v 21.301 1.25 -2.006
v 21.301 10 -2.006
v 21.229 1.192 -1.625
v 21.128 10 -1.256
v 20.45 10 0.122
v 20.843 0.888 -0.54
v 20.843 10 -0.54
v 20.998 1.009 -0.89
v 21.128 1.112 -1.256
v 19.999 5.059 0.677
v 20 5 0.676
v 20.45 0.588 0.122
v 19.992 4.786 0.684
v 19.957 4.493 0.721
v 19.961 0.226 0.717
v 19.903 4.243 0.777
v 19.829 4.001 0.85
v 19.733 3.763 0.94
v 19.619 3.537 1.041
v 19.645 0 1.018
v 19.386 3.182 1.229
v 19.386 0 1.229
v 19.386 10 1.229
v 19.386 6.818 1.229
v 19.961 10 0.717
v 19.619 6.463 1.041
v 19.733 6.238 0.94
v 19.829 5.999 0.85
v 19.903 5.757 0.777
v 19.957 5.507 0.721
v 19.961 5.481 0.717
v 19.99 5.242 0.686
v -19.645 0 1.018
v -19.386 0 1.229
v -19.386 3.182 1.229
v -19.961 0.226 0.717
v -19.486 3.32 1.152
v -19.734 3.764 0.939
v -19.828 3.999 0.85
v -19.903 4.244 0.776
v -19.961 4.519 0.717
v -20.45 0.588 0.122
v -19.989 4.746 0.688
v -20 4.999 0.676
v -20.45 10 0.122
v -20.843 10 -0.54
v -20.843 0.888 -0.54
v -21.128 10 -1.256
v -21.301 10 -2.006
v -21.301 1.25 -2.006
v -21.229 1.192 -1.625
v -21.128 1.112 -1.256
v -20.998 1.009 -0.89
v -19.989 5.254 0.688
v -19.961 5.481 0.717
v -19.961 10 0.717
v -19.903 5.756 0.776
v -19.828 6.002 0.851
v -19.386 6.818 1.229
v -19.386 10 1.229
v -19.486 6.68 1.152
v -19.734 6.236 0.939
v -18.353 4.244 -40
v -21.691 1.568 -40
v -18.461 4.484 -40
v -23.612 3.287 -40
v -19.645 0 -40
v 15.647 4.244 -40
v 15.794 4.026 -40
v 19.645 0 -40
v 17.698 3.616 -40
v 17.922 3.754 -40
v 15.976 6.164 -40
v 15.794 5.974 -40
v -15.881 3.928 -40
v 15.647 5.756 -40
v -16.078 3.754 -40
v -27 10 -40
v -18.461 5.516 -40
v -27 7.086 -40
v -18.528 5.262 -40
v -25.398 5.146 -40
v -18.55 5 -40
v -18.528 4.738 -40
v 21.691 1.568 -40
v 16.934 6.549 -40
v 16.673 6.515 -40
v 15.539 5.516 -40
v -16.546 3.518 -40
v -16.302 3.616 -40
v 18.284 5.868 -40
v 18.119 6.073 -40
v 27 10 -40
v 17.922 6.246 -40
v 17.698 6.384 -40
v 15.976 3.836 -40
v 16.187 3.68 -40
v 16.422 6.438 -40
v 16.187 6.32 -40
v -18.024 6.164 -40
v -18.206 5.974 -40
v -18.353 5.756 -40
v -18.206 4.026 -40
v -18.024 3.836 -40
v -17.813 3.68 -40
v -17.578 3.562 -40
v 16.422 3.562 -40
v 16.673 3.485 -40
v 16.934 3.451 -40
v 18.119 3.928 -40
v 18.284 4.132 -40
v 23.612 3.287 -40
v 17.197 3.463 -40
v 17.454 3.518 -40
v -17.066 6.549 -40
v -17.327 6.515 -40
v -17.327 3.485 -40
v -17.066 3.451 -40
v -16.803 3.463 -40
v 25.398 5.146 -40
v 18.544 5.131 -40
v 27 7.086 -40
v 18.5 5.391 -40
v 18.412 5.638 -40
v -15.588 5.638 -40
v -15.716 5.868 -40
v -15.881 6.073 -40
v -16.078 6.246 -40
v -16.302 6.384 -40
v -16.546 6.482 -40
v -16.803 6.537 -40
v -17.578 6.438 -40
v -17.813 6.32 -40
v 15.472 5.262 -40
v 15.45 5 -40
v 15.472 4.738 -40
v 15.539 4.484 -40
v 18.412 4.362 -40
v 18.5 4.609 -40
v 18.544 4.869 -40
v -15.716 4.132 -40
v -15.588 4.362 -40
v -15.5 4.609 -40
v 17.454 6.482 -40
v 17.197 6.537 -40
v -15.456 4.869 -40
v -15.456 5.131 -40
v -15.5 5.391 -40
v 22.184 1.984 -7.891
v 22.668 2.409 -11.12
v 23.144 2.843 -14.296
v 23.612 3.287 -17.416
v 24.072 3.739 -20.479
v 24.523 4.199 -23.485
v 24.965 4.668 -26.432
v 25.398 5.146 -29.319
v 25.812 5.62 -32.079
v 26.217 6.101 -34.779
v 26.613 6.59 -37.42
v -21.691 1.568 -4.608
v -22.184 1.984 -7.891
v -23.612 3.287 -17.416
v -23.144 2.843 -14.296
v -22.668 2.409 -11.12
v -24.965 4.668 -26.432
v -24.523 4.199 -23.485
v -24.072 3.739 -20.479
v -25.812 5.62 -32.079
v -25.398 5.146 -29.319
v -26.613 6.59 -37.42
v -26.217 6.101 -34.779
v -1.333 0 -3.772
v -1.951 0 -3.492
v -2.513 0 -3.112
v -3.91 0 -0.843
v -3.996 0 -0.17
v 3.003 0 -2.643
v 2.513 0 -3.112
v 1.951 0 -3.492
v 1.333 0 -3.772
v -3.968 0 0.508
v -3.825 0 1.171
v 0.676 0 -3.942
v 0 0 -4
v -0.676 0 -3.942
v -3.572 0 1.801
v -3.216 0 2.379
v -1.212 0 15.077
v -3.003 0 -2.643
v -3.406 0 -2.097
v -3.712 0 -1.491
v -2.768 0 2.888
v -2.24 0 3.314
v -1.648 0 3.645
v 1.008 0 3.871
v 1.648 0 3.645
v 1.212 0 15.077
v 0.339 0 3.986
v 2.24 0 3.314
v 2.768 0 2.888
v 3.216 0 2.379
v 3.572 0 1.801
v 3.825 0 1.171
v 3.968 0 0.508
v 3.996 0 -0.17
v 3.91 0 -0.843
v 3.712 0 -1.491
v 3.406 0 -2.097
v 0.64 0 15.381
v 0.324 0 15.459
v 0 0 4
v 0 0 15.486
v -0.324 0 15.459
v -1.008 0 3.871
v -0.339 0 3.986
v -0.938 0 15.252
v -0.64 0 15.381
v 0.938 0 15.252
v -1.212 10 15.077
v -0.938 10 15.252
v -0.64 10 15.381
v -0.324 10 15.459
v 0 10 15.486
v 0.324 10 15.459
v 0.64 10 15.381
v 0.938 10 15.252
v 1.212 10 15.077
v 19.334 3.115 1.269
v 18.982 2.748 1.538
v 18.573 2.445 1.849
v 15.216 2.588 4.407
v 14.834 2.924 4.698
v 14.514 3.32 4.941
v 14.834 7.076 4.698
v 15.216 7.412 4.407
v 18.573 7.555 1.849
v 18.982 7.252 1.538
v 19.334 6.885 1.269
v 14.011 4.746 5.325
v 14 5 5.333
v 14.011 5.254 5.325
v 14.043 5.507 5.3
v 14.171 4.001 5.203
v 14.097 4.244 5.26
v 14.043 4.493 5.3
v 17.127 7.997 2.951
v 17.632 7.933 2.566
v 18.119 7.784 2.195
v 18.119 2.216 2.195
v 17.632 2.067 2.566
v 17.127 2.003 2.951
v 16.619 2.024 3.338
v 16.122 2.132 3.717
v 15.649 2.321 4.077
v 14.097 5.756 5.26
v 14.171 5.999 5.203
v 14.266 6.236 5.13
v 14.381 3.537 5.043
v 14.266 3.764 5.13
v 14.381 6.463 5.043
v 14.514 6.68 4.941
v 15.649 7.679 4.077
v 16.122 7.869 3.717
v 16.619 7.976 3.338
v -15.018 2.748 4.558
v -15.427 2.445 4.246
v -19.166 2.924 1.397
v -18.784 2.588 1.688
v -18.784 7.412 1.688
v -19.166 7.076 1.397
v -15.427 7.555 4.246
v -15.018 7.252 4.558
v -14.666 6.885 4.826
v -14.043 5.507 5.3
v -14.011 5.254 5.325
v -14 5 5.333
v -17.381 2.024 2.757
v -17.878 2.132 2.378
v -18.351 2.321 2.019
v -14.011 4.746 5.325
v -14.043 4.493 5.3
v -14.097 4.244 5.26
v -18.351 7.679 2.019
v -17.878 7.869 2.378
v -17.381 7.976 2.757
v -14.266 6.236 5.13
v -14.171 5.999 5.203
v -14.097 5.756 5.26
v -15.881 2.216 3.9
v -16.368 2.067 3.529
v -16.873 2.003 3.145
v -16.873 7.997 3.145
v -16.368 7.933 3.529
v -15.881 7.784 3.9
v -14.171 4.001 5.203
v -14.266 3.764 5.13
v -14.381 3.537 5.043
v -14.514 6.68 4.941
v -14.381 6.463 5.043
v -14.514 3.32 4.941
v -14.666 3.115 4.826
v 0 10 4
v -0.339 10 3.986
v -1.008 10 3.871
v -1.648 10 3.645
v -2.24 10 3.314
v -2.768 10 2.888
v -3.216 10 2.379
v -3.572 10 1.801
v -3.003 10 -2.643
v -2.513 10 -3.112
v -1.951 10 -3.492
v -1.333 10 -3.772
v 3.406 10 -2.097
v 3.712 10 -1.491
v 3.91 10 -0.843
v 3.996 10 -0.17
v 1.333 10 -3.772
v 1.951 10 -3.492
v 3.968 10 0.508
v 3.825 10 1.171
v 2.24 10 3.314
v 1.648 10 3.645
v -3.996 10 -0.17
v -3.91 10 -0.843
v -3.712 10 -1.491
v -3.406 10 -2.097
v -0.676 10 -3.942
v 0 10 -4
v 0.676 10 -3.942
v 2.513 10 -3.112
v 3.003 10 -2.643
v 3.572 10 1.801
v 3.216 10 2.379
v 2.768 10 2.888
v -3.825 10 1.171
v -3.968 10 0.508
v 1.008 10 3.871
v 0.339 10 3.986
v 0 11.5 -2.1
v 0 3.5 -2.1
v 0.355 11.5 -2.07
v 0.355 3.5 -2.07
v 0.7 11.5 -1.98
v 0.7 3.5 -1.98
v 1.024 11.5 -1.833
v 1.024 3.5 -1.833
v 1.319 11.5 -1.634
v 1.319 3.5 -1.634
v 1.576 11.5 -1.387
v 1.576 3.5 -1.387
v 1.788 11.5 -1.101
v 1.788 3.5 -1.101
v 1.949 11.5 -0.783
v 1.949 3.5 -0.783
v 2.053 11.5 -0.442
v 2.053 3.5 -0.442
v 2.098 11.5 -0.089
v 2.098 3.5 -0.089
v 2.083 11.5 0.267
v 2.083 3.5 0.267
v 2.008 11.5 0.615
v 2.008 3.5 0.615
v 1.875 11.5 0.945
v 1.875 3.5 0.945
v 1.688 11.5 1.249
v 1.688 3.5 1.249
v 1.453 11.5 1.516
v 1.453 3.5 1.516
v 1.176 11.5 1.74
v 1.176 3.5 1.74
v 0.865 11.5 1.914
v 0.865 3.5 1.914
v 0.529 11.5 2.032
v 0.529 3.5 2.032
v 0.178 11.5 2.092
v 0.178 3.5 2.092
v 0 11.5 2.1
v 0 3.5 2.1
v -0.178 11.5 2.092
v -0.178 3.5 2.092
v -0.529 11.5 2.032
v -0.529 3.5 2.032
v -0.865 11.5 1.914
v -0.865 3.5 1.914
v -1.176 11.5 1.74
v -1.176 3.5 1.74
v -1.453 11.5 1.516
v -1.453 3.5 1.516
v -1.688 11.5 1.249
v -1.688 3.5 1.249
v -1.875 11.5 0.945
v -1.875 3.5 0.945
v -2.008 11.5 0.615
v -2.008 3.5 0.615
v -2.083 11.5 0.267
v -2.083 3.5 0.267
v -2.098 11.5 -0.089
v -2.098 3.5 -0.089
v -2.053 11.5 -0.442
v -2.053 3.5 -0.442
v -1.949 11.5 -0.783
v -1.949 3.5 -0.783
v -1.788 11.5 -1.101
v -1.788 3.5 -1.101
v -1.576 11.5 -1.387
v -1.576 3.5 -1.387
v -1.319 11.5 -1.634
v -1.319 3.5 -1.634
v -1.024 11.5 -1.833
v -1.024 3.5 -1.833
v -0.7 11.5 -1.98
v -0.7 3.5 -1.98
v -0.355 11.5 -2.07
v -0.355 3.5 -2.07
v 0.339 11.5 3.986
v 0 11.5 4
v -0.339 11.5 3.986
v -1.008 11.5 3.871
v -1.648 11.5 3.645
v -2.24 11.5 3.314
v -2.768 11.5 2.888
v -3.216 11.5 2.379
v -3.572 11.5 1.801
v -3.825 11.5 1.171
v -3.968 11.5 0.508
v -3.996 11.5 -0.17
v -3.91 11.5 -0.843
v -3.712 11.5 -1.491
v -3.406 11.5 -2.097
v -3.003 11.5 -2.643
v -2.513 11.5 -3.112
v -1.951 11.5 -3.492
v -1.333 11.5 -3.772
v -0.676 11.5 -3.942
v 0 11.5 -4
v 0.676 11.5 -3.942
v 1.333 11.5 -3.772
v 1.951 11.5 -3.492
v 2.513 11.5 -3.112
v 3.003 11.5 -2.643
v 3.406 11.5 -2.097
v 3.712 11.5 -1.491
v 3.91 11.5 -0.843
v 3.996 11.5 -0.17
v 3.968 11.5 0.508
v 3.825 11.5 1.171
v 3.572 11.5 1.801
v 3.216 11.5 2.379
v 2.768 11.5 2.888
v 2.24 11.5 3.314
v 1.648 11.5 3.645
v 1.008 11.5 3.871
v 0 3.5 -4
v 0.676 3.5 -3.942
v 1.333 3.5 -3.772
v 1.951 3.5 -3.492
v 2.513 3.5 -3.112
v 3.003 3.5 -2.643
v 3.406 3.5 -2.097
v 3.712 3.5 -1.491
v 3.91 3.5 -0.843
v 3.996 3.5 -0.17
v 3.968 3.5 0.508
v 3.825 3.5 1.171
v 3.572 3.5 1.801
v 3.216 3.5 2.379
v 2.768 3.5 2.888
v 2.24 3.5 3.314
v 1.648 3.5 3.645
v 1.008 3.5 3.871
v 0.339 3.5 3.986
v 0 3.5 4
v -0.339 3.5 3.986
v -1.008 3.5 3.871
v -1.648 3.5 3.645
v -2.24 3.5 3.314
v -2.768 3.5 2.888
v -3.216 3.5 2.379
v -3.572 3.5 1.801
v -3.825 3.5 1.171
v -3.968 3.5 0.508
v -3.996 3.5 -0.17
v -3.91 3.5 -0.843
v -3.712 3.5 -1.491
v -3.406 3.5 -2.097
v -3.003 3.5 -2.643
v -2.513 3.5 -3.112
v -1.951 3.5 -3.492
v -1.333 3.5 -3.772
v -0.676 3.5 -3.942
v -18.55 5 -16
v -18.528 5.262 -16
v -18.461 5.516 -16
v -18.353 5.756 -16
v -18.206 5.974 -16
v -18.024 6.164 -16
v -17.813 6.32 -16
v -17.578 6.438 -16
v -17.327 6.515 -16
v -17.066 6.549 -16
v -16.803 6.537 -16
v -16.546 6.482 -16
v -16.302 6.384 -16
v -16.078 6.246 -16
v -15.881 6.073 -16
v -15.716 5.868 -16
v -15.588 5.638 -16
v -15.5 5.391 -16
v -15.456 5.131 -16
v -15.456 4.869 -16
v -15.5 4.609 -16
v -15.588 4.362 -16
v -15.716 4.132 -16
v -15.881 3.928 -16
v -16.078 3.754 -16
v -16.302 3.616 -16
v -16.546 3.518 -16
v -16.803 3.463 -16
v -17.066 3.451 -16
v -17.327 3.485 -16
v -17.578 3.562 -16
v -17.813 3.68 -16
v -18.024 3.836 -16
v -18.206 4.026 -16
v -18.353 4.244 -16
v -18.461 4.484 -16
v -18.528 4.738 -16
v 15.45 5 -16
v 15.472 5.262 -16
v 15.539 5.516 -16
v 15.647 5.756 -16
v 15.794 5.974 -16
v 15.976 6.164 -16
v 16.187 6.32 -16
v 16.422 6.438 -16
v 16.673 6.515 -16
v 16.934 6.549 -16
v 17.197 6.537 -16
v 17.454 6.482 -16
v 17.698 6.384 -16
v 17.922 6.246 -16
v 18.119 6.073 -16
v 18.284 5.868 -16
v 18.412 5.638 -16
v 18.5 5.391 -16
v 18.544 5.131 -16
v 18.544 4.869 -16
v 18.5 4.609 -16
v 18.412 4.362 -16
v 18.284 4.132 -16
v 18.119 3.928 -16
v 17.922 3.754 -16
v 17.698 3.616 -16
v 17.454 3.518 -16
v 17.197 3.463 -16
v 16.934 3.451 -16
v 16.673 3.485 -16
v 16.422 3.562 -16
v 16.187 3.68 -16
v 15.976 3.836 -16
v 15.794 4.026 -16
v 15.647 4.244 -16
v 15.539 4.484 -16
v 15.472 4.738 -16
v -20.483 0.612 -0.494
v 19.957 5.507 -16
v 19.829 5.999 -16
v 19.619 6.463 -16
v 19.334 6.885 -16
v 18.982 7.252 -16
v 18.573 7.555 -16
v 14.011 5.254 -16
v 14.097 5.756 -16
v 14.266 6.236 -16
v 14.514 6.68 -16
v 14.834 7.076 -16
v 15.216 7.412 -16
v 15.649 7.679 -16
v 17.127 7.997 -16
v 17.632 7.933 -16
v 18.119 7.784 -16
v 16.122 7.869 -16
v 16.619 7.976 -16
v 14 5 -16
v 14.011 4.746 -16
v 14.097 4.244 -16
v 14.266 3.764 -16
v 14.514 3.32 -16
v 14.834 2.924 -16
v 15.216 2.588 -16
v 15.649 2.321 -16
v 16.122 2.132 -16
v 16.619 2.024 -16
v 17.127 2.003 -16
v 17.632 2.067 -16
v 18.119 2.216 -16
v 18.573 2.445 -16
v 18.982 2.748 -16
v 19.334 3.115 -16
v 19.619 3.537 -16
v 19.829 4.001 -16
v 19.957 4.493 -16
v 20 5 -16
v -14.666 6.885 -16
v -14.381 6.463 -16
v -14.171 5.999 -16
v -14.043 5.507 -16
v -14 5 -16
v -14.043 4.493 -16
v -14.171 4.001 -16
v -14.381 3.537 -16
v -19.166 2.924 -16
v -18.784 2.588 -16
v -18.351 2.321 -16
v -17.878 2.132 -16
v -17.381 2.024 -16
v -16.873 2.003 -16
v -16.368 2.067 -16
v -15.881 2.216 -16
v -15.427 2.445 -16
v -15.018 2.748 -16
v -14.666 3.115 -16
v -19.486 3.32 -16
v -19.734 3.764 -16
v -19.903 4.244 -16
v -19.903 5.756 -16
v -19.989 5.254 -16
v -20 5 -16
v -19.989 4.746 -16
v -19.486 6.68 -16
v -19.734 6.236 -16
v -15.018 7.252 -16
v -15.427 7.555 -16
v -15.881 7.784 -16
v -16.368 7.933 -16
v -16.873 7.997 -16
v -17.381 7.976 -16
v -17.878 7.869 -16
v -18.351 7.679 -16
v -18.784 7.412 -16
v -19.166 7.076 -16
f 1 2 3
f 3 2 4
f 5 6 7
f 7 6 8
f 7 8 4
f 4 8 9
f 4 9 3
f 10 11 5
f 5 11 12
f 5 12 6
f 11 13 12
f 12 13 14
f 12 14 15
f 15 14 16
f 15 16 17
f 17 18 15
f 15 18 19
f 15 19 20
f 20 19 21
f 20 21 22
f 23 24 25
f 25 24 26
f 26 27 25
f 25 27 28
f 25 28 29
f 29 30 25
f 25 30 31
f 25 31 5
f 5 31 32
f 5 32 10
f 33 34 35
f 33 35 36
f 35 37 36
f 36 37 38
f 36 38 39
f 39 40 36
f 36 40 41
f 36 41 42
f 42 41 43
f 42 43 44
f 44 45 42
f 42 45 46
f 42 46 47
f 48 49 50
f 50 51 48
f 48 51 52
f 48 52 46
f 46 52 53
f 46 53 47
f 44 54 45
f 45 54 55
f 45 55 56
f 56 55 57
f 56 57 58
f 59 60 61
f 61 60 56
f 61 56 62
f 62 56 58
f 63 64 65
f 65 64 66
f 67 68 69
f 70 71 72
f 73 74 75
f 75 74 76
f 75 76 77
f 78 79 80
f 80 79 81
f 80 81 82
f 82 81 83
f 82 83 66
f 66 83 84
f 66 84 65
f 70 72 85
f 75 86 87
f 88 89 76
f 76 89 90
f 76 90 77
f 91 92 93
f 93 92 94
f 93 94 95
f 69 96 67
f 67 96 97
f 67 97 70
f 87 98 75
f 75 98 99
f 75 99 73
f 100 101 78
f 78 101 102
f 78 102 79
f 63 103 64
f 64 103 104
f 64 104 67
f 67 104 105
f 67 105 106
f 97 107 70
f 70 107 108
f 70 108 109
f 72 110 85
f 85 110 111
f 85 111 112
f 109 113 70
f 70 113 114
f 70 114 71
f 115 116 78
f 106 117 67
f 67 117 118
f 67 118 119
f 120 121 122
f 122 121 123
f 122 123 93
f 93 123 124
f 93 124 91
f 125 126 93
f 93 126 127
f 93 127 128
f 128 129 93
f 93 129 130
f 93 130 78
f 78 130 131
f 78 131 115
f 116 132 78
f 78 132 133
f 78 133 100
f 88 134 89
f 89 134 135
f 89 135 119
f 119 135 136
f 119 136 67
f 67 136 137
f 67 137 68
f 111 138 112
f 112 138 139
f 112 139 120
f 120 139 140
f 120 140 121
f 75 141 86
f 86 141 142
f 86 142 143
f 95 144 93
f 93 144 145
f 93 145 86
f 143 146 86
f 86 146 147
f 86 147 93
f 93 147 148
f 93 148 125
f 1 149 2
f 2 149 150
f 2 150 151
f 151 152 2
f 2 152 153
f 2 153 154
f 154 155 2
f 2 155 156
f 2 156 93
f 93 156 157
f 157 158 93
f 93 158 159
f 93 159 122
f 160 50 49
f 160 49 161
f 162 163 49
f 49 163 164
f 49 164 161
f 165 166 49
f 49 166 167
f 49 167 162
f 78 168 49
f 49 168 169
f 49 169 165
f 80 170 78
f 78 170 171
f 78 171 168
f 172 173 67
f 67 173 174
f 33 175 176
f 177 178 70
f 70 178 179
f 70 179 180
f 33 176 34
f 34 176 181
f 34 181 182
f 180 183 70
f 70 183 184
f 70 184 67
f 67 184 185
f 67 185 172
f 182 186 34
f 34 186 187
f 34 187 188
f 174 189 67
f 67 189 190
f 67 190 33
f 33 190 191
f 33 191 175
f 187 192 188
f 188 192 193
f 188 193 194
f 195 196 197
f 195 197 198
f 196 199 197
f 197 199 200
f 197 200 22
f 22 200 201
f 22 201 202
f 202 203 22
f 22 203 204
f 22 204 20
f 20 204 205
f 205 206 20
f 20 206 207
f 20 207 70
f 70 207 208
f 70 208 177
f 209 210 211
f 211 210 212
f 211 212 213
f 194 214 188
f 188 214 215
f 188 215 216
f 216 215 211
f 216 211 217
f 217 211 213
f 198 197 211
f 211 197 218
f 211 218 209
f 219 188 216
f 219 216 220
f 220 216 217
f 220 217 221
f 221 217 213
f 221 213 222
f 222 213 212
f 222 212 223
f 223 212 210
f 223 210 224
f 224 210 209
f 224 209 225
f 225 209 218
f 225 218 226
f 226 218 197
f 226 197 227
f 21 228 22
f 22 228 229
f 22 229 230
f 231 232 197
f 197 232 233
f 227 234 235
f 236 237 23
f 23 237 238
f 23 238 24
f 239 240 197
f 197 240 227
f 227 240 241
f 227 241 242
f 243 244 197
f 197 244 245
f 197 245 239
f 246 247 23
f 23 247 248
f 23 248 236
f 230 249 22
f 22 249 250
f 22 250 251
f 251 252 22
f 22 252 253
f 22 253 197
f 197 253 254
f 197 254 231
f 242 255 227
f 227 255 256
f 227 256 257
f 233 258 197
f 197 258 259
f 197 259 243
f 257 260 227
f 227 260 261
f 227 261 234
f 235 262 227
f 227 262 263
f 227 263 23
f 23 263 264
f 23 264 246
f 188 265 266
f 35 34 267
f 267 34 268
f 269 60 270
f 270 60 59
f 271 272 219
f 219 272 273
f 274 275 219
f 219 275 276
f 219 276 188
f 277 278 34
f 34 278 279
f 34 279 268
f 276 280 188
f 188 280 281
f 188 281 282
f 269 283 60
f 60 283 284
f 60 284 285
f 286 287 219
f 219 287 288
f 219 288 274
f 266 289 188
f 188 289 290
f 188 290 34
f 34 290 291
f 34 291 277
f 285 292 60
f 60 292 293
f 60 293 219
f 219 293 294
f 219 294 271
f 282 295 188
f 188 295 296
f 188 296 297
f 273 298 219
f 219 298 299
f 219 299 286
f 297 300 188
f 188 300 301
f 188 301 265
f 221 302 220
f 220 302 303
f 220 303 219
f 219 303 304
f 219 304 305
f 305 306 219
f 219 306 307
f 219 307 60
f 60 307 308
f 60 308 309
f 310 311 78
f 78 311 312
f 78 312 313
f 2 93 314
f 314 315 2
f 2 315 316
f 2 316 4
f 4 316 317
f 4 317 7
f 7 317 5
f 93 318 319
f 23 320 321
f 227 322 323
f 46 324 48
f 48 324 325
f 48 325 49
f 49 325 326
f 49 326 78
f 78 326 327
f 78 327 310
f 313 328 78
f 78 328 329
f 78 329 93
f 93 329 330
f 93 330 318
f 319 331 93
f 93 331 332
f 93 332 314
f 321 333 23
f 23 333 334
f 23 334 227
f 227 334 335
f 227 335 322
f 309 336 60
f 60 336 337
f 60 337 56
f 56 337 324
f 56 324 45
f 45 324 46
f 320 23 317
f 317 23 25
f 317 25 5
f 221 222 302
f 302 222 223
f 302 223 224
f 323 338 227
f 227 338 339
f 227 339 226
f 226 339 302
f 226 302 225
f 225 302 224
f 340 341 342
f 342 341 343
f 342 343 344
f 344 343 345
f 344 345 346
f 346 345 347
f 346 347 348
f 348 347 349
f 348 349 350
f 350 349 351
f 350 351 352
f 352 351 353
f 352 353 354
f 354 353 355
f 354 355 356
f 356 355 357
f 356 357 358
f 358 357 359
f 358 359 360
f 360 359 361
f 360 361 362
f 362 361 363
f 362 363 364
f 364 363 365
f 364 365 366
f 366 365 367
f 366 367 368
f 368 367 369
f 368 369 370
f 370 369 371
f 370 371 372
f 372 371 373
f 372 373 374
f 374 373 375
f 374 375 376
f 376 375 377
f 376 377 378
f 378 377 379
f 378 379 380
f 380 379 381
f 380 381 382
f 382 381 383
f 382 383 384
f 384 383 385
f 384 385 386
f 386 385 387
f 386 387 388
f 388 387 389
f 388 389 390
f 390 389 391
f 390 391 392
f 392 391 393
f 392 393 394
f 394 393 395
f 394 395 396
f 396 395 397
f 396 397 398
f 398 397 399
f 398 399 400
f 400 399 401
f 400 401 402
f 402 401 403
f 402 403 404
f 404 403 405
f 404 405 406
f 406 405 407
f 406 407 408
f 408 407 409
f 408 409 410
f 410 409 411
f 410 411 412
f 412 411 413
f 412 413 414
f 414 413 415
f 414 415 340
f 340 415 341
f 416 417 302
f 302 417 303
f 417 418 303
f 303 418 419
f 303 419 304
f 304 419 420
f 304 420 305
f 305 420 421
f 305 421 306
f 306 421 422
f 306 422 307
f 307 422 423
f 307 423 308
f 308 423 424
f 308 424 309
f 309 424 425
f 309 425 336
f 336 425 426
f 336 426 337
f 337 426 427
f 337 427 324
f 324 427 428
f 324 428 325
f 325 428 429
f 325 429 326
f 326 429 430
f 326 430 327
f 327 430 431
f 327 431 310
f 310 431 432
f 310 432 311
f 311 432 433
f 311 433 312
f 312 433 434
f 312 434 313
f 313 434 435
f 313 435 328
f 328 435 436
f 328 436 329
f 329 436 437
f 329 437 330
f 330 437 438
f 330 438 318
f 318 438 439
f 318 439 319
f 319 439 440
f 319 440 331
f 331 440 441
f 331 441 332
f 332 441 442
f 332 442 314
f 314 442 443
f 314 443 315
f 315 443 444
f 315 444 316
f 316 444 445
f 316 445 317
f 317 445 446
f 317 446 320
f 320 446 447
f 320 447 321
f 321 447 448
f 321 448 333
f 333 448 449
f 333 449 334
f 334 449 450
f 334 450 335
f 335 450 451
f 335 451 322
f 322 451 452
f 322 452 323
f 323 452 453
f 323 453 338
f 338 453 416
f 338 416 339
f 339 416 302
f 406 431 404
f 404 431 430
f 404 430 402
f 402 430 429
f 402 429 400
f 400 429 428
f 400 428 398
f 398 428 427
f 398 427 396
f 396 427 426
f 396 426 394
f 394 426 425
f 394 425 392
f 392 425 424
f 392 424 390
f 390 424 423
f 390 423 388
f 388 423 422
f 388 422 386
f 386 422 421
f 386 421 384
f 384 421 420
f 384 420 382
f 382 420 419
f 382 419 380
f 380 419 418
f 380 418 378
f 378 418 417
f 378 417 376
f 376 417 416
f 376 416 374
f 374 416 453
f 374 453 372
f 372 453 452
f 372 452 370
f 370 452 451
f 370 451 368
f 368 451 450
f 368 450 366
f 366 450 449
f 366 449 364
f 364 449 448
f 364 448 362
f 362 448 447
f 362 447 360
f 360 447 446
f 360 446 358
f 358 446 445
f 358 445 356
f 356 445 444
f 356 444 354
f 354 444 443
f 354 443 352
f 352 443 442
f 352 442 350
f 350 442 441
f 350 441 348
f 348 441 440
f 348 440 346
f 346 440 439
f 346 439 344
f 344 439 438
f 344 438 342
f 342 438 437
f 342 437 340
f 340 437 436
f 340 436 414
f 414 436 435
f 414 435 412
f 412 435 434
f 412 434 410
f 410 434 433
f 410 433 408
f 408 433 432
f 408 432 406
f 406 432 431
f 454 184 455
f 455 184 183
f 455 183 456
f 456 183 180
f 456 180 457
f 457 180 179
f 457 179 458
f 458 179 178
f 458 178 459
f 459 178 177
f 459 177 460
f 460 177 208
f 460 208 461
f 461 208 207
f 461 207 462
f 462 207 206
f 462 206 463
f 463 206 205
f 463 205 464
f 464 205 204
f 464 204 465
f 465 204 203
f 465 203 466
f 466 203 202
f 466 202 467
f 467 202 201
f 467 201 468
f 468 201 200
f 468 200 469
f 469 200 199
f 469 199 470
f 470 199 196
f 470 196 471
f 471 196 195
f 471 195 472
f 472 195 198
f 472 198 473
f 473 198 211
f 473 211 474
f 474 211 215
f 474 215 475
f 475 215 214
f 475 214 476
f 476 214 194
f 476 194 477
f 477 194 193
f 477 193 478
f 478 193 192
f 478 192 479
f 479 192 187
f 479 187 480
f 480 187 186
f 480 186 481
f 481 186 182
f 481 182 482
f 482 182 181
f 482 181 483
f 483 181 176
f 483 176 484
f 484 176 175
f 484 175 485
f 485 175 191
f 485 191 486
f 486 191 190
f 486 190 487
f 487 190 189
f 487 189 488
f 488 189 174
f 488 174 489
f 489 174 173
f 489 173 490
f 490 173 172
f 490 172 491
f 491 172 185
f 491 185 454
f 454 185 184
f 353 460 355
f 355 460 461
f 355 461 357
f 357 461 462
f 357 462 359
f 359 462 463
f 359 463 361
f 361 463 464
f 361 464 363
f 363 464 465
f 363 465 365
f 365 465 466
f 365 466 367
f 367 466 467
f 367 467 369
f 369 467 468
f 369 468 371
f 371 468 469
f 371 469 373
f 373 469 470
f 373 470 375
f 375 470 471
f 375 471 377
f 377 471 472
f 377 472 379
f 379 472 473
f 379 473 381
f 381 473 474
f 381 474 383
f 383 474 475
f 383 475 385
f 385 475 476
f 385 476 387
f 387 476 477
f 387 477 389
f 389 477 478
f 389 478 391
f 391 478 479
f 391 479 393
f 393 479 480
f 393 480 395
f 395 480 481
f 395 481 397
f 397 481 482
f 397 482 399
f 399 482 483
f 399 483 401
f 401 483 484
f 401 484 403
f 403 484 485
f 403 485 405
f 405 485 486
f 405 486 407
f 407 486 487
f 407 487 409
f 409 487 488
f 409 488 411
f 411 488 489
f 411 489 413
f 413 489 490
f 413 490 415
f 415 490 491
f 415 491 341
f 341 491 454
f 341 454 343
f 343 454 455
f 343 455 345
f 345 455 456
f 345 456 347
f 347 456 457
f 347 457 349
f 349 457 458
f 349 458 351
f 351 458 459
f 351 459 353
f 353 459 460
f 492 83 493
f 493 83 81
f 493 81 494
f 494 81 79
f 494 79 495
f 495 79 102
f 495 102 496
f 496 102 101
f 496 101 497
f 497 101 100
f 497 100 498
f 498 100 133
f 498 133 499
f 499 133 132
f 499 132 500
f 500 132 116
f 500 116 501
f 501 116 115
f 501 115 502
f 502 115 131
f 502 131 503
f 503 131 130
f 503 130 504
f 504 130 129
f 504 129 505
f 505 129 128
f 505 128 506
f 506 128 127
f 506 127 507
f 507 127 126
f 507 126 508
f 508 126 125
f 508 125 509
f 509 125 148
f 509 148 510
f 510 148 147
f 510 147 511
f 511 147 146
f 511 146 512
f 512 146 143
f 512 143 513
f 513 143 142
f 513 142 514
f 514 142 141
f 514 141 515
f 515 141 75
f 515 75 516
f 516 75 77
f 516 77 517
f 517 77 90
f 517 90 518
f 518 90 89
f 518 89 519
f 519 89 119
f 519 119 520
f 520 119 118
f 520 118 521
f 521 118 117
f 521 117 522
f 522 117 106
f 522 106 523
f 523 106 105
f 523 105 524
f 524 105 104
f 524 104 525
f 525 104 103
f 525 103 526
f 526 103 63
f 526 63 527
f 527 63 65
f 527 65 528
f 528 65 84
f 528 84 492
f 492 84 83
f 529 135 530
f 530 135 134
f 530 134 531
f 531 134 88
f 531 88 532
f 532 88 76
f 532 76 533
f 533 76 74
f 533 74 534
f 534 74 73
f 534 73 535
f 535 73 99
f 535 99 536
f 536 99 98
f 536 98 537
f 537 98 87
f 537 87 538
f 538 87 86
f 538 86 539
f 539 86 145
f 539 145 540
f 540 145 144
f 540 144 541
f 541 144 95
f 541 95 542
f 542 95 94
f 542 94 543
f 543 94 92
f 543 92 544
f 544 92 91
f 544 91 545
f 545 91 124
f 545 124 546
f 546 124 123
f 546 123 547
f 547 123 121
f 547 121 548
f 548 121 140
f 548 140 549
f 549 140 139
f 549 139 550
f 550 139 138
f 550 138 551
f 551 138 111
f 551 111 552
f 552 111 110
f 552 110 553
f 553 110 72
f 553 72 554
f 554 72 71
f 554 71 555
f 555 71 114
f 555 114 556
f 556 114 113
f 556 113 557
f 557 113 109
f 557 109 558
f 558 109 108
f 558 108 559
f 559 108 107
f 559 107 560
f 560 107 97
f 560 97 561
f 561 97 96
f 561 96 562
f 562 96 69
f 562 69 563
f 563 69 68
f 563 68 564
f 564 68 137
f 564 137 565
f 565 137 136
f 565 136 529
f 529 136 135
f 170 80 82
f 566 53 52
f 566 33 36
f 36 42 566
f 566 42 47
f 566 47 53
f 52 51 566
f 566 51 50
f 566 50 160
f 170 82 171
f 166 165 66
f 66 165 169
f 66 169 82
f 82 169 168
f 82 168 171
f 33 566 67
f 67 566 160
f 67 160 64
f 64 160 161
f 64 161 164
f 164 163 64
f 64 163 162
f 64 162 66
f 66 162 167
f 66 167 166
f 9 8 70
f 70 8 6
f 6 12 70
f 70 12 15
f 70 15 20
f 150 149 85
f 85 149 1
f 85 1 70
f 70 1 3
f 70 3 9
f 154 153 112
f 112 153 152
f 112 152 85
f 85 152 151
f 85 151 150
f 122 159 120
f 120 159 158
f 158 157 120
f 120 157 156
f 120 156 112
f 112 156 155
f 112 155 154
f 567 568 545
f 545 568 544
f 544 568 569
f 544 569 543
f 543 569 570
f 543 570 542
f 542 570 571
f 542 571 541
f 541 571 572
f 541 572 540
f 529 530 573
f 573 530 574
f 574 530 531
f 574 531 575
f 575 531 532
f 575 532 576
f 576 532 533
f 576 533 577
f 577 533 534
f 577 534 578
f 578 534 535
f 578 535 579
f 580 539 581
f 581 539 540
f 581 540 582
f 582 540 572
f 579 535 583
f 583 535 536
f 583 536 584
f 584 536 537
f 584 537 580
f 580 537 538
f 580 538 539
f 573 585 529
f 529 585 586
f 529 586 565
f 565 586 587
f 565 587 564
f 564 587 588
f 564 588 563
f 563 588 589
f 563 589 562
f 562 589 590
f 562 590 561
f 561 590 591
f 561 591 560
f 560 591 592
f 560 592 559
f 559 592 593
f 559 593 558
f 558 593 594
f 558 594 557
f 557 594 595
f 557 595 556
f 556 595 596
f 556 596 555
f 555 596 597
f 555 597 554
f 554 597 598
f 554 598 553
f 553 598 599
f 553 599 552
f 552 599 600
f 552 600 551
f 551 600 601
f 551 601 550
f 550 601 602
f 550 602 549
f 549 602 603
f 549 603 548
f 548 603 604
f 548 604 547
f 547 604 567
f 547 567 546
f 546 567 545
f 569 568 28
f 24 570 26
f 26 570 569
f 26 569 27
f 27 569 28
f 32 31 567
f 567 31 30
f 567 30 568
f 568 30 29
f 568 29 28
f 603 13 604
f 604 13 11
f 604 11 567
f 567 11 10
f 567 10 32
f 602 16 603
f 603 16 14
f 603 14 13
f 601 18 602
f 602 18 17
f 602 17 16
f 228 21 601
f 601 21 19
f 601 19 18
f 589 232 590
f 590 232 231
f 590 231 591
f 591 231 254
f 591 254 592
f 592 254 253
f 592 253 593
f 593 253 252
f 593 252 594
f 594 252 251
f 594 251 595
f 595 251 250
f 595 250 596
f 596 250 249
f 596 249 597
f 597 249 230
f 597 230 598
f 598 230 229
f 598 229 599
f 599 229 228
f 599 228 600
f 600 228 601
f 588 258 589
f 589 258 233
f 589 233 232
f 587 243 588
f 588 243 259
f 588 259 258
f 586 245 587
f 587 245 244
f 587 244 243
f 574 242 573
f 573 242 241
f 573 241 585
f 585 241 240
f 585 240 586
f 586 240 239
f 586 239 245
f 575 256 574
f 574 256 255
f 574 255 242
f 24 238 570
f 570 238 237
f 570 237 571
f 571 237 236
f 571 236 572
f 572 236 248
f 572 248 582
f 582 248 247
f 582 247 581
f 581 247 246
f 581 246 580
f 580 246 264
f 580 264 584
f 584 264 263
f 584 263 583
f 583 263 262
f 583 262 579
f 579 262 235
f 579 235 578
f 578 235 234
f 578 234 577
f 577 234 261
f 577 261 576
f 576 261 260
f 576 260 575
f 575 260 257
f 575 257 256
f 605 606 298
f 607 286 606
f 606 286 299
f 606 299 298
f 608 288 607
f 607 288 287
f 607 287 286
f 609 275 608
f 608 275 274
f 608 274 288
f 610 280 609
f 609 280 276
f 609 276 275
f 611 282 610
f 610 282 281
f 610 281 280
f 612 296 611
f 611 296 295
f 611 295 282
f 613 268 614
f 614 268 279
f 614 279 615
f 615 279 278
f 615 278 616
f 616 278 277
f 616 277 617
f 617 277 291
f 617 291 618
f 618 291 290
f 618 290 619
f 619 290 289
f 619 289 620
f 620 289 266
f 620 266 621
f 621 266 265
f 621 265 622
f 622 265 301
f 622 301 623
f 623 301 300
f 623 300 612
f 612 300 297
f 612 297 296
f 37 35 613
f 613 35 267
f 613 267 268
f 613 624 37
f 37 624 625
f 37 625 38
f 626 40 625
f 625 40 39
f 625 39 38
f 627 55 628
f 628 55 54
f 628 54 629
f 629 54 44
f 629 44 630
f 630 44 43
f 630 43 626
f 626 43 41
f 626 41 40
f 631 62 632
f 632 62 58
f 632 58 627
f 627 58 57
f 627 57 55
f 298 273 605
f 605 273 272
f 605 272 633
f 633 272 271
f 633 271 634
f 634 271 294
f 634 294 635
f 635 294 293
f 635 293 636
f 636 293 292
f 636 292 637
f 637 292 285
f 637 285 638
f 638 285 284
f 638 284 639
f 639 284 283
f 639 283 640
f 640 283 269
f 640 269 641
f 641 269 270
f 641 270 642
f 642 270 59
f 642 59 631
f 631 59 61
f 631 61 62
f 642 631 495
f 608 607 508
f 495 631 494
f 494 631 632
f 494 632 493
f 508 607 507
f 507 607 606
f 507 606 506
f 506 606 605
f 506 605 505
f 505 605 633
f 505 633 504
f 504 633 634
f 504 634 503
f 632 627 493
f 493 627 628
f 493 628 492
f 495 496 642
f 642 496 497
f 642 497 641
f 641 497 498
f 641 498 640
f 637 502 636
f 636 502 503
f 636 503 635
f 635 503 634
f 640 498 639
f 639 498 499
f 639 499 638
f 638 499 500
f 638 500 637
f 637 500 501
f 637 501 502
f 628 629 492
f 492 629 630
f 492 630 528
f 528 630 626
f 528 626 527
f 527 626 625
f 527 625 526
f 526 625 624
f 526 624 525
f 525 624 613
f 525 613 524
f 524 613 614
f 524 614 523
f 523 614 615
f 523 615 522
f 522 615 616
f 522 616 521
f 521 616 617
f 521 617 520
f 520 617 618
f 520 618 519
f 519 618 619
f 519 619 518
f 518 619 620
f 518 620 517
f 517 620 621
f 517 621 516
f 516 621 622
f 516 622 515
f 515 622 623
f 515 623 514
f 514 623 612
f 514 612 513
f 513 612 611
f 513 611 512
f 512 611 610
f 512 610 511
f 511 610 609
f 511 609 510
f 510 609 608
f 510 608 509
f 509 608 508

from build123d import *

# Parameters (mm, degrees)
SKETCH1_R           = 4
BOSS_EXTRUDE1_DEPTH = 10
SKETCH1_3_R         = 4
SKETCH1_3_R_2       = 2.1
BOSS_EXTRUDE2_DEPTH = 11.5
SKETCH1_4_R         = 4
SKETCH1_4_R_2       = 2.1
CUT_EXTRUDE1_DEPTH  = 3.5
SKETCH2_R           = 1.55
CUT_EXTRUDE3_DEPTH  = 61.2
SKETCH3_R           = 51.203530844
SKETCH3_R_2         = 34
CUT_EXTRUDE4_DEPTH  = 63.768674379
SKETCH4_R           = 3
CUT_EXTRUDE5_DEPTH  = 36


with BuildPart() as part:
    # Sketch1 → Boss-Extrude1 (new body)
    with BuildSketch(Plane(origin=(0, 0, 0), x_dir=(1, 0, 0), z_dir=(0, 1, 0))):
        with BuildLine():
            ThreePointArc((-21.300912355, 2.006082368), (-20.659344965, 0.201570446), (-19.386446667, -1.229373968))
            Line((-19.386446667, -1.229373968), (-1.212086431, -15.076505577))
            ThreePointArc((-1.212086431, -15.076505577), (0, -15.485642137), (1.212086431, -15.076505577))
            Line((1.212086431, -15.076505577), (19.386446667, -1.229373968))
            ThreePointArc((19.386446667, -1.229373968), (20.659344965, 0.201570446), (21.300912355, 2.006082368))
            Line((21.300912355, 2.006082368), (27, 40))
            Line((27, 40), (-27, 40))
            Line((-27, 40), (-21.300912355, 2.006082368))
        make_face()
        Circle(SKETCH1_R, mode=Mode.SUBTRACT)
    extrude(amount=BOSS_EXTRUDE1_DEPTH)

    # Sketch1<3> → Boss-Extrude2 (add)
    with BuildSketch(Plane(origin=(0, 0, 0), x_dir=(1, 0, 0), z_dir=(0, 1, 0))):
        Circle(SKETCH1_3_R)
        Circle(SKETCH1_3_R_2, mode=Mode.SUBTRACT)
    extrude(amount=BOSS_EXTRUDE2_DEPTH)

    # Sketch1<4> → Cut-Extrude1 (cut)
    with BuildSketch(Plane(origin=(0, 0, 0), x_dir=(1, 0, 0), z_dir=(0, 1, 0))):
        Circle(SKETCH1_4_R)
        Circle(SKETCH1_4_R_2, mode=Mode.SUBTRACT)
    extrude(amount=CUT_EXTRUDE1_DEPTH, mode=Mode.SUBTRACT)

    # Sketch2 → Cut-Extrude3 (cut)
    with BuildSketch(Plane(origin=(0, 0, -40), x_dir=(-1, 0, 0), z_dir=(0, 0, -1))):
        with Locations((-17, 5)):
            Circle(SKETCH2_R)
        with Locations((17, 5)):
            Circle(SKETCH2_R)
    extrude(amount=-CUT_EXTRUDE3_DEPTH, mode=Mode.SUBTRACT)

    # Sketch3 → Cut-Extrude4 (cut, through all)
    with BuildSketch(Plane(origin=(0, 0, -40), x_dir=(-1, 0, 0), z_dir=(0, 0, -1))):
        with Locations((0, 27.75)):
            Circle(SKETCH3_R)
        with Locations((0, 27.75)):
            Circle(SKETCH3_R_2, mode=Mode.SUBTRACT)
    extrude(amount=-CUT_EXTRUDE4_DEPTH, mode=Mode.SUBTRACT)

    # Sketch4 → Cut-Extrude5 (cut)
    with BuildSketch(Plane(origin=(0, 0, 20), x_dir=(-1, 0, 0), z_dir=(0, 0, -1))):
        with Locations((17, 5)):
            Circle(SKETCH4_R)
        with Locations((-17, 5)):
            Circle(SKETCH4_R)
    extrude(amount=CUT_EXTRUDE5_DEPTH, mode=Mode.SUBTRACT)


solid = part.part
